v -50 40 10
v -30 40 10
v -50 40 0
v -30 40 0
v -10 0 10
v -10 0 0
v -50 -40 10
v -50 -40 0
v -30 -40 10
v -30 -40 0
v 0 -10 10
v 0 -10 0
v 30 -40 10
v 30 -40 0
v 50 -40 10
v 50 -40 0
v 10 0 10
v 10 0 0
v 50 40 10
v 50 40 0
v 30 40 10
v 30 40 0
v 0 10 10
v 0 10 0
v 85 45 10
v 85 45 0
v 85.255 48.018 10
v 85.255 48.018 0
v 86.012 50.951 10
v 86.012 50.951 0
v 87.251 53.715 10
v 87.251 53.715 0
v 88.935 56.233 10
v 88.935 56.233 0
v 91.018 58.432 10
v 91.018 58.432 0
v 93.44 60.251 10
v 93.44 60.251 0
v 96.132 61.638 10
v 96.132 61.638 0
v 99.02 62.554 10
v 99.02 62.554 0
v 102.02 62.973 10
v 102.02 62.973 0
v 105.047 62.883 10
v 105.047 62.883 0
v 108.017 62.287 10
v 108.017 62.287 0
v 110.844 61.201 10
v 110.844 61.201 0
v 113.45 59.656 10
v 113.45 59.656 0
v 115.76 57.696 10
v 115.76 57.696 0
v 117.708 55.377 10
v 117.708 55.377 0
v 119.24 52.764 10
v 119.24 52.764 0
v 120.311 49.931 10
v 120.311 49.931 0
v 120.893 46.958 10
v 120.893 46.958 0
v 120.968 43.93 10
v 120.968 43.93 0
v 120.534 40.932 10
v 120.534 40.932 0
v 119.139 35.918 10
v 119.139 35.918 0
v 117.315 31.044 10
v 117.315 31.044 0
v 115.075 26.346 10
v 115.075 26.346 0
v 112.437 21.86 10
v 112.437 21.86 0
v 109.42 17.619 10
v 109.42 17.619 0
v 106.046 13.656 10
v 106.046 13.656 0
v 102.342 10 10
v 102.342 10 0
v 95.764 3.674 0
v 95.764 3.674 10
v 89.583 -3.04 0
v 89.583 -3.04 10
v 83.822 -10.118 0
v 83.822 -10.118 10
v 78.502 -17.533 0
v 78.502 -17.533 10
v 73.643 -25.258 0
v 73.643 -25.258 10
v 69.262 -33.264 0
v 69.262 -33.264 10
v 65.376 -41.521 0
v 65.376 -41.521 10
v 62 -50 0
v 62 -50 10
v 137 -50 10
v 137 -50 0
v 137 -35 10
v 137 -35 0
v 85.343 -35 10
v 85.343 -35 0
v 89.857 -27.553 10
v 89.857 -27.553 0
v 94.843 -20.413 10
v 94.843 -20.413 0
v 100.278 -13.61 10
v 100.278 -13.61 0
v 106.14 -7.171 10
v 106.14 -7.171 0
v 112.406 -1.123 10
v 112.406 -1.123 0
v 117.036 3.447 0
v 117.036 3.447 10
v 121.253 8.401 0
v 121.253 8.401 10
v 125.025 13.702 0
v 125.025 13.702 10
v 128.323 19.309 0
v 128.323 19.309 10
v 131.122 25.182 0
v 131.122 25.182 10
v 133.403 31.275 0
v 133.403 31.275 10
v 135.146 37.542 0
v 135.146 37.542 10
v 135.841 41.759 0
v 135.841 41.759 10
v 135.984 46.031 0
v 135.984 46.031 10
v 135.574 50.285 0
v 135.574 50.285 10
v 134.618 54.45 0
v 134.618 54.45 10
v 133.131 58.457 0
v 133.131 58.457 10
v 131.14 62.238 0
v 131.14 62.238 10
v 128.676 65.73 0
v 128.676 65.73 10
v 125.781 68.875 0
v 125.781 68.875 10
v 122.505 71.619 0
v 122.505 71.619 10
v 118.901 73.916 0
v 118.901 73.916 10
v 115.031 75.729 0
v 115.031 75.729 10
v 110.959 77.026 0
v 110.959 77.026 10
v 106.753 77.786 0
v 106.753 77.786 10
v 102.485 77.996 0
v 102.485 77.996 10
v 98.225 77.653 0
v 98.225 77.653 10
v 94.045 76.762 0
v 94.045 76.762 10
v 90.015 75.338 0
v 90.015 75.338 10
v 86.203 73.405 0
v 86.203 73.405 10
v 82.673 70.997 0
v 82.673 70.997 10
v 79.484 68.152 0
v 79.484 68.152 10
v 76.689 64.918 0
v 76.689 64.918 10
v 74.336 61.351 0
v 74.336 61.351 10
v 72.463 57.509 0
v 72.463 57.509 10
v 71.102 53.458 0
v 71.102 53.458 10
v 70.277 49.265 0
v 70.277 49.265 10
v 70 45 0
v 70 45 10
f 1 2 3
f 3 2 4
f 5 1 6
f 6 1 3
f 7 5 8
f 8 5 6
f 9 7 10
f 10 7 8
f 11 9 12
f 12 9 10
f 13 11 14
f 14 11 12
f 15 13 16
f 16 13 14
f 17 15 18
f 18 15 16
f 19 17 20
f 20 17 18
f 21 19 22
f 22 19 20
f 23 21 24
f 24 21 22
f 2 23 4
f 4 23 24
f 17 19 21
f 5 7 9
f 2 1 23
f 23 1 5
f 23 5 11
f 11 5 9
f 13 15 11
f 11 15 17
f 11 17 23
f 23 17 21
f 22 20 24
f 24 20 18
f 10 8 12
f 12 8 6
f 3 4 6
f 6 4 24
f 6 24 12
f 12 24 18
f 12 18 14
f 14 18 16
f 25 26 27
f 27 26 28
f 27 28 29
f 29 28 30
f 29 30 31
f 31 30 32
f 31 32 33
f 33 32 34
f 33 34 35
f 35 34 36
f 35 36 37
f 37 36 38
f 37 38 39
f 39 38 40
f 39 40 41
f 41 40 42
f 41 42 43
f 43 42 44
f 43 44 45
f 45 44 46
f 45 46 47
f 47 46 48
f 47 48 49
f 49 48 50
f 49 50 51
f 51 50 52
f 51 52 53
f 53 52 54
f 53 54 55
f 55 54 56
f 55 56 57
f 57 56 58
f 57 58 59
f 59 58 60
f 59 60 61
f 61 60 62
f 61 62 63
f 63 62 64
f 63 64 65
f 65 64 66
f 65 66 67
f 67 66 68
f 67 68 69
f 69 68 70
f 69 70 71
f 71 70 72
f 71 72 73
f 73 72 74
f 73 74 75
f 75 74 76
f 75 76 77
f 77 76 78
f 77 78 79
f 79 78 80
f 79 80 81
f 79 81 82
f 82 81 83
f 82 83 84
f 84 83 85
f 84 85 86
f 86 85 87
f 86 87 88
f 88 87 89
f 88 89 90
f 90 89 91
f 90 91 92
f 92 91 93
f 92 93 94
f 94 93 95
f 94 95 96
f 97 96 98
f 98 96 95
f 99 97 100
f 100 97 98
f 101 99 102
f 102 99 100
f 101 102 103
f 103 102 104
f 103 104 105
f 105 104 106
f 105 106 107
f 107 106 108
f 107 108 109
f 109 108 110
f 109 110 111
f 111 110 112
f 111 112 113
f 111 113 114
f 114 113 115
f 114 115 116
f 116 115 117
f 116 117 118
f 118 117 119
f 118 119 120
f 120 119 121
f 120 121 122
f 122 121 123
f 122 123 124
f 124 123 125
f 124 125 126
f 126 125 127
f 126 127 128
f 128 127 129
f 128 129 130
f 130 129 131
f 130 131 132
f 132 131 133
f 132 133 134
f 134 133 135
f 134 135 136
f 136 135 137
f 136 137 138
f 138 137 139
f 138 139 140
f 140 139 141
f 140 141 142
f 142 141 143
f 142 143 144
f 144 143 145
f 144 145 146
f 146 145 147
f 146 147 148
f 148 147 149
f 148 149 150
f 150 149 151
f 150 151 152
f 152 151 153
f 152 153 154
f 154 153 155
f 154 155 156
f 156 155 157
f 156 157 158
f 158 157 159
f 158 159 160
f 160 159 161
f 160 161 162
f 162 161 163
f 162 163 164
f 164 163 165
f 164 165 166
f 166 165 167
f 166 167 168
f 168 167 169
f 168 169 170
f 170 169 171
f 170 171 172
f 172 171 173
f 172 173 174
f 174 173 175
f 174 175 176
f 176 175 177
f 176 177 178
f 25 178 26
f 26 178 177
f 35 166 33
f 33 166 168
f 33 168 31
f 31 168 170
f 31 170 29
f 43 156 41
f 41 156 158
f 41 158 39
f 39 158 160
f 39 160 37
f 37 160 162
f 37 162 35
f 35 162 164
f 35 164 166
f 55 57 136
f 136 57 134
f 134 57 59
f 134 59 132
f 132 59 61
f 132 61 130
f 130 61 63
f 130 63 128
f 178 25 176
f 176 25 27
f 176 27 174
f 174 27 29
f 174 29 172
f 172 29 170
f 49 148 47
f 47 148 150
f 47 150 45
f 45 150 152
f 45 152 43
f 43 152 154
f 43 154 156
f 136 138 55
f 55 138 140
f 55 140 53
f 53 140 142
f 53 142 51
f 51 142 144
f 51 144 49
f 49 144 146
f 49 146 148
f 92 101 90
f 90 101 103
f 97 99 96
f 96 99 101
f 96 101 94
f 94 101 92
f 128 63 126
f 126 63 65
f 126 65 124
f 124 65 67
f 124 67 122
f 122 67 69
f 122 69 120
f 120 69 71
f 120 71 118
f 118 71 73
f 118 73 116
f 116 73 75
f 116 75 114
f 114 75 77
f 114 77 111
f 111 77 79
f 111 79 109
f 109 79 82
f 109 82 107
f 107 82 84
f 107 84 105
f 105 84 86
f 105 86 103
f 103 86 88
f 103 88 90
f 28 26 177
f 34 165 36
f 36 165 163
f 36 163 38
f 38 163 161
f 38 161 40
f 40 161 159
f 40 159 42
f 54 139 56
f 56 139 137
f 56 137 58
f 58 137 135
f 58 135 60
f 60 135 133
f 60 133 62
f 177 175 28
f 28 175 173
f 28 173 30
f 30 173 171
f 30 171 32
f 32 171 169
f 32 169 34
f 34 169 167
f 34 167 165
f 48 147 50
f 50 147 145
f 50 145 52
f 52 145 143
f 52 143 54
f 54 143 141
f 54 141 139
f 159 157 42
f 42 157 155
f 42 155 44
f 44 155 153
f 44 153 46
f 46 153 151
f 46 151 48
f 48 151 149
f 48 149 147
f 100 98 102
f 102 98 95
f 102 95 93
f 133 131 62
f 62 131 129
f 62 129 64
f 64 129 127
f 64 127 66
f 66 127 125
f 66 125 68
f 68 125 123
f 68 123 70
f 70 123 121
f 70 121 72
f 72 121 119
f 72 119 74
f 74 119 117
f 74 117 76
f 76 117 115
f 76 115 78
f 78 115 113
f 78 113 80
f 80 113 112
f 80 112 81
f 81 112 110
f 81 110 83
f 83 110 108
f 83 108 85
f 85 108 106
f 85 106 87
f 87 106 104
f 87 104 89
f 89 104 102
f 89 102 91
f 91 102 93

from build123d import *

# Parameters (mm, degrees)
BOSS_EXTRUDE1_DEPTH   = 10
BOSS_EXTRUDE1_2_DEPTH = 10


with BuildPart() as part:
    # Sketch1 → Boss-Extrude1 (new body)
    with BuildSketch(Plane.XY):
        Polygon((-50, 40), (-10, 0), (-50, -40), (-30, -40), (0, -10), (30, -40), (50, -40), (10, 0), (50, 40), (30, 40), (0, 10), (-30, 40), align=None)
    extrude(amount=BOSS_EXTRUDE1_DEPTH)


with BuildPart() as body_2:
    # Sketch1 → Boss-Extrude1 2 (new body)
    with BuildSketch(Plane.XY):
        with BuildLine():
            Line((85.342663494, -35), (137, -35))
            Line((137, -35), (137, -50))
            Line((137, -50), (62, -50))
            ThreePointArc((62, -50), (78.501893933, -17.532986448), (102.342072826, 10))
            ThreePointArc((102.342072826, 10), (113.804890183, 24.074187919), (120.534343564, 40.932224712))
            ThreePointArc((120.534343564, 40.932224712), (105.047170713, 62.883206985), (85, 45))
            Line((85, 45), (70, 45))
            ThreePointArc((70, 45), (106.753146307, 77.785879473), (135.146296533, 37.542411972))
            ThreePointArc((135.146296533, 37.542411972), (126.734479807, 16.46986598), (112.405958111, -1.122868918))
            ThreePointArc((112.405958111, -1.122868918), (97.505325355, -16.967798271), (85.342663494, -35))
        make_face()
    extrude(amount=BOSS_EXTRUDE1_2_DEPTH)


solid = Compound([part.part, body_2.part])
